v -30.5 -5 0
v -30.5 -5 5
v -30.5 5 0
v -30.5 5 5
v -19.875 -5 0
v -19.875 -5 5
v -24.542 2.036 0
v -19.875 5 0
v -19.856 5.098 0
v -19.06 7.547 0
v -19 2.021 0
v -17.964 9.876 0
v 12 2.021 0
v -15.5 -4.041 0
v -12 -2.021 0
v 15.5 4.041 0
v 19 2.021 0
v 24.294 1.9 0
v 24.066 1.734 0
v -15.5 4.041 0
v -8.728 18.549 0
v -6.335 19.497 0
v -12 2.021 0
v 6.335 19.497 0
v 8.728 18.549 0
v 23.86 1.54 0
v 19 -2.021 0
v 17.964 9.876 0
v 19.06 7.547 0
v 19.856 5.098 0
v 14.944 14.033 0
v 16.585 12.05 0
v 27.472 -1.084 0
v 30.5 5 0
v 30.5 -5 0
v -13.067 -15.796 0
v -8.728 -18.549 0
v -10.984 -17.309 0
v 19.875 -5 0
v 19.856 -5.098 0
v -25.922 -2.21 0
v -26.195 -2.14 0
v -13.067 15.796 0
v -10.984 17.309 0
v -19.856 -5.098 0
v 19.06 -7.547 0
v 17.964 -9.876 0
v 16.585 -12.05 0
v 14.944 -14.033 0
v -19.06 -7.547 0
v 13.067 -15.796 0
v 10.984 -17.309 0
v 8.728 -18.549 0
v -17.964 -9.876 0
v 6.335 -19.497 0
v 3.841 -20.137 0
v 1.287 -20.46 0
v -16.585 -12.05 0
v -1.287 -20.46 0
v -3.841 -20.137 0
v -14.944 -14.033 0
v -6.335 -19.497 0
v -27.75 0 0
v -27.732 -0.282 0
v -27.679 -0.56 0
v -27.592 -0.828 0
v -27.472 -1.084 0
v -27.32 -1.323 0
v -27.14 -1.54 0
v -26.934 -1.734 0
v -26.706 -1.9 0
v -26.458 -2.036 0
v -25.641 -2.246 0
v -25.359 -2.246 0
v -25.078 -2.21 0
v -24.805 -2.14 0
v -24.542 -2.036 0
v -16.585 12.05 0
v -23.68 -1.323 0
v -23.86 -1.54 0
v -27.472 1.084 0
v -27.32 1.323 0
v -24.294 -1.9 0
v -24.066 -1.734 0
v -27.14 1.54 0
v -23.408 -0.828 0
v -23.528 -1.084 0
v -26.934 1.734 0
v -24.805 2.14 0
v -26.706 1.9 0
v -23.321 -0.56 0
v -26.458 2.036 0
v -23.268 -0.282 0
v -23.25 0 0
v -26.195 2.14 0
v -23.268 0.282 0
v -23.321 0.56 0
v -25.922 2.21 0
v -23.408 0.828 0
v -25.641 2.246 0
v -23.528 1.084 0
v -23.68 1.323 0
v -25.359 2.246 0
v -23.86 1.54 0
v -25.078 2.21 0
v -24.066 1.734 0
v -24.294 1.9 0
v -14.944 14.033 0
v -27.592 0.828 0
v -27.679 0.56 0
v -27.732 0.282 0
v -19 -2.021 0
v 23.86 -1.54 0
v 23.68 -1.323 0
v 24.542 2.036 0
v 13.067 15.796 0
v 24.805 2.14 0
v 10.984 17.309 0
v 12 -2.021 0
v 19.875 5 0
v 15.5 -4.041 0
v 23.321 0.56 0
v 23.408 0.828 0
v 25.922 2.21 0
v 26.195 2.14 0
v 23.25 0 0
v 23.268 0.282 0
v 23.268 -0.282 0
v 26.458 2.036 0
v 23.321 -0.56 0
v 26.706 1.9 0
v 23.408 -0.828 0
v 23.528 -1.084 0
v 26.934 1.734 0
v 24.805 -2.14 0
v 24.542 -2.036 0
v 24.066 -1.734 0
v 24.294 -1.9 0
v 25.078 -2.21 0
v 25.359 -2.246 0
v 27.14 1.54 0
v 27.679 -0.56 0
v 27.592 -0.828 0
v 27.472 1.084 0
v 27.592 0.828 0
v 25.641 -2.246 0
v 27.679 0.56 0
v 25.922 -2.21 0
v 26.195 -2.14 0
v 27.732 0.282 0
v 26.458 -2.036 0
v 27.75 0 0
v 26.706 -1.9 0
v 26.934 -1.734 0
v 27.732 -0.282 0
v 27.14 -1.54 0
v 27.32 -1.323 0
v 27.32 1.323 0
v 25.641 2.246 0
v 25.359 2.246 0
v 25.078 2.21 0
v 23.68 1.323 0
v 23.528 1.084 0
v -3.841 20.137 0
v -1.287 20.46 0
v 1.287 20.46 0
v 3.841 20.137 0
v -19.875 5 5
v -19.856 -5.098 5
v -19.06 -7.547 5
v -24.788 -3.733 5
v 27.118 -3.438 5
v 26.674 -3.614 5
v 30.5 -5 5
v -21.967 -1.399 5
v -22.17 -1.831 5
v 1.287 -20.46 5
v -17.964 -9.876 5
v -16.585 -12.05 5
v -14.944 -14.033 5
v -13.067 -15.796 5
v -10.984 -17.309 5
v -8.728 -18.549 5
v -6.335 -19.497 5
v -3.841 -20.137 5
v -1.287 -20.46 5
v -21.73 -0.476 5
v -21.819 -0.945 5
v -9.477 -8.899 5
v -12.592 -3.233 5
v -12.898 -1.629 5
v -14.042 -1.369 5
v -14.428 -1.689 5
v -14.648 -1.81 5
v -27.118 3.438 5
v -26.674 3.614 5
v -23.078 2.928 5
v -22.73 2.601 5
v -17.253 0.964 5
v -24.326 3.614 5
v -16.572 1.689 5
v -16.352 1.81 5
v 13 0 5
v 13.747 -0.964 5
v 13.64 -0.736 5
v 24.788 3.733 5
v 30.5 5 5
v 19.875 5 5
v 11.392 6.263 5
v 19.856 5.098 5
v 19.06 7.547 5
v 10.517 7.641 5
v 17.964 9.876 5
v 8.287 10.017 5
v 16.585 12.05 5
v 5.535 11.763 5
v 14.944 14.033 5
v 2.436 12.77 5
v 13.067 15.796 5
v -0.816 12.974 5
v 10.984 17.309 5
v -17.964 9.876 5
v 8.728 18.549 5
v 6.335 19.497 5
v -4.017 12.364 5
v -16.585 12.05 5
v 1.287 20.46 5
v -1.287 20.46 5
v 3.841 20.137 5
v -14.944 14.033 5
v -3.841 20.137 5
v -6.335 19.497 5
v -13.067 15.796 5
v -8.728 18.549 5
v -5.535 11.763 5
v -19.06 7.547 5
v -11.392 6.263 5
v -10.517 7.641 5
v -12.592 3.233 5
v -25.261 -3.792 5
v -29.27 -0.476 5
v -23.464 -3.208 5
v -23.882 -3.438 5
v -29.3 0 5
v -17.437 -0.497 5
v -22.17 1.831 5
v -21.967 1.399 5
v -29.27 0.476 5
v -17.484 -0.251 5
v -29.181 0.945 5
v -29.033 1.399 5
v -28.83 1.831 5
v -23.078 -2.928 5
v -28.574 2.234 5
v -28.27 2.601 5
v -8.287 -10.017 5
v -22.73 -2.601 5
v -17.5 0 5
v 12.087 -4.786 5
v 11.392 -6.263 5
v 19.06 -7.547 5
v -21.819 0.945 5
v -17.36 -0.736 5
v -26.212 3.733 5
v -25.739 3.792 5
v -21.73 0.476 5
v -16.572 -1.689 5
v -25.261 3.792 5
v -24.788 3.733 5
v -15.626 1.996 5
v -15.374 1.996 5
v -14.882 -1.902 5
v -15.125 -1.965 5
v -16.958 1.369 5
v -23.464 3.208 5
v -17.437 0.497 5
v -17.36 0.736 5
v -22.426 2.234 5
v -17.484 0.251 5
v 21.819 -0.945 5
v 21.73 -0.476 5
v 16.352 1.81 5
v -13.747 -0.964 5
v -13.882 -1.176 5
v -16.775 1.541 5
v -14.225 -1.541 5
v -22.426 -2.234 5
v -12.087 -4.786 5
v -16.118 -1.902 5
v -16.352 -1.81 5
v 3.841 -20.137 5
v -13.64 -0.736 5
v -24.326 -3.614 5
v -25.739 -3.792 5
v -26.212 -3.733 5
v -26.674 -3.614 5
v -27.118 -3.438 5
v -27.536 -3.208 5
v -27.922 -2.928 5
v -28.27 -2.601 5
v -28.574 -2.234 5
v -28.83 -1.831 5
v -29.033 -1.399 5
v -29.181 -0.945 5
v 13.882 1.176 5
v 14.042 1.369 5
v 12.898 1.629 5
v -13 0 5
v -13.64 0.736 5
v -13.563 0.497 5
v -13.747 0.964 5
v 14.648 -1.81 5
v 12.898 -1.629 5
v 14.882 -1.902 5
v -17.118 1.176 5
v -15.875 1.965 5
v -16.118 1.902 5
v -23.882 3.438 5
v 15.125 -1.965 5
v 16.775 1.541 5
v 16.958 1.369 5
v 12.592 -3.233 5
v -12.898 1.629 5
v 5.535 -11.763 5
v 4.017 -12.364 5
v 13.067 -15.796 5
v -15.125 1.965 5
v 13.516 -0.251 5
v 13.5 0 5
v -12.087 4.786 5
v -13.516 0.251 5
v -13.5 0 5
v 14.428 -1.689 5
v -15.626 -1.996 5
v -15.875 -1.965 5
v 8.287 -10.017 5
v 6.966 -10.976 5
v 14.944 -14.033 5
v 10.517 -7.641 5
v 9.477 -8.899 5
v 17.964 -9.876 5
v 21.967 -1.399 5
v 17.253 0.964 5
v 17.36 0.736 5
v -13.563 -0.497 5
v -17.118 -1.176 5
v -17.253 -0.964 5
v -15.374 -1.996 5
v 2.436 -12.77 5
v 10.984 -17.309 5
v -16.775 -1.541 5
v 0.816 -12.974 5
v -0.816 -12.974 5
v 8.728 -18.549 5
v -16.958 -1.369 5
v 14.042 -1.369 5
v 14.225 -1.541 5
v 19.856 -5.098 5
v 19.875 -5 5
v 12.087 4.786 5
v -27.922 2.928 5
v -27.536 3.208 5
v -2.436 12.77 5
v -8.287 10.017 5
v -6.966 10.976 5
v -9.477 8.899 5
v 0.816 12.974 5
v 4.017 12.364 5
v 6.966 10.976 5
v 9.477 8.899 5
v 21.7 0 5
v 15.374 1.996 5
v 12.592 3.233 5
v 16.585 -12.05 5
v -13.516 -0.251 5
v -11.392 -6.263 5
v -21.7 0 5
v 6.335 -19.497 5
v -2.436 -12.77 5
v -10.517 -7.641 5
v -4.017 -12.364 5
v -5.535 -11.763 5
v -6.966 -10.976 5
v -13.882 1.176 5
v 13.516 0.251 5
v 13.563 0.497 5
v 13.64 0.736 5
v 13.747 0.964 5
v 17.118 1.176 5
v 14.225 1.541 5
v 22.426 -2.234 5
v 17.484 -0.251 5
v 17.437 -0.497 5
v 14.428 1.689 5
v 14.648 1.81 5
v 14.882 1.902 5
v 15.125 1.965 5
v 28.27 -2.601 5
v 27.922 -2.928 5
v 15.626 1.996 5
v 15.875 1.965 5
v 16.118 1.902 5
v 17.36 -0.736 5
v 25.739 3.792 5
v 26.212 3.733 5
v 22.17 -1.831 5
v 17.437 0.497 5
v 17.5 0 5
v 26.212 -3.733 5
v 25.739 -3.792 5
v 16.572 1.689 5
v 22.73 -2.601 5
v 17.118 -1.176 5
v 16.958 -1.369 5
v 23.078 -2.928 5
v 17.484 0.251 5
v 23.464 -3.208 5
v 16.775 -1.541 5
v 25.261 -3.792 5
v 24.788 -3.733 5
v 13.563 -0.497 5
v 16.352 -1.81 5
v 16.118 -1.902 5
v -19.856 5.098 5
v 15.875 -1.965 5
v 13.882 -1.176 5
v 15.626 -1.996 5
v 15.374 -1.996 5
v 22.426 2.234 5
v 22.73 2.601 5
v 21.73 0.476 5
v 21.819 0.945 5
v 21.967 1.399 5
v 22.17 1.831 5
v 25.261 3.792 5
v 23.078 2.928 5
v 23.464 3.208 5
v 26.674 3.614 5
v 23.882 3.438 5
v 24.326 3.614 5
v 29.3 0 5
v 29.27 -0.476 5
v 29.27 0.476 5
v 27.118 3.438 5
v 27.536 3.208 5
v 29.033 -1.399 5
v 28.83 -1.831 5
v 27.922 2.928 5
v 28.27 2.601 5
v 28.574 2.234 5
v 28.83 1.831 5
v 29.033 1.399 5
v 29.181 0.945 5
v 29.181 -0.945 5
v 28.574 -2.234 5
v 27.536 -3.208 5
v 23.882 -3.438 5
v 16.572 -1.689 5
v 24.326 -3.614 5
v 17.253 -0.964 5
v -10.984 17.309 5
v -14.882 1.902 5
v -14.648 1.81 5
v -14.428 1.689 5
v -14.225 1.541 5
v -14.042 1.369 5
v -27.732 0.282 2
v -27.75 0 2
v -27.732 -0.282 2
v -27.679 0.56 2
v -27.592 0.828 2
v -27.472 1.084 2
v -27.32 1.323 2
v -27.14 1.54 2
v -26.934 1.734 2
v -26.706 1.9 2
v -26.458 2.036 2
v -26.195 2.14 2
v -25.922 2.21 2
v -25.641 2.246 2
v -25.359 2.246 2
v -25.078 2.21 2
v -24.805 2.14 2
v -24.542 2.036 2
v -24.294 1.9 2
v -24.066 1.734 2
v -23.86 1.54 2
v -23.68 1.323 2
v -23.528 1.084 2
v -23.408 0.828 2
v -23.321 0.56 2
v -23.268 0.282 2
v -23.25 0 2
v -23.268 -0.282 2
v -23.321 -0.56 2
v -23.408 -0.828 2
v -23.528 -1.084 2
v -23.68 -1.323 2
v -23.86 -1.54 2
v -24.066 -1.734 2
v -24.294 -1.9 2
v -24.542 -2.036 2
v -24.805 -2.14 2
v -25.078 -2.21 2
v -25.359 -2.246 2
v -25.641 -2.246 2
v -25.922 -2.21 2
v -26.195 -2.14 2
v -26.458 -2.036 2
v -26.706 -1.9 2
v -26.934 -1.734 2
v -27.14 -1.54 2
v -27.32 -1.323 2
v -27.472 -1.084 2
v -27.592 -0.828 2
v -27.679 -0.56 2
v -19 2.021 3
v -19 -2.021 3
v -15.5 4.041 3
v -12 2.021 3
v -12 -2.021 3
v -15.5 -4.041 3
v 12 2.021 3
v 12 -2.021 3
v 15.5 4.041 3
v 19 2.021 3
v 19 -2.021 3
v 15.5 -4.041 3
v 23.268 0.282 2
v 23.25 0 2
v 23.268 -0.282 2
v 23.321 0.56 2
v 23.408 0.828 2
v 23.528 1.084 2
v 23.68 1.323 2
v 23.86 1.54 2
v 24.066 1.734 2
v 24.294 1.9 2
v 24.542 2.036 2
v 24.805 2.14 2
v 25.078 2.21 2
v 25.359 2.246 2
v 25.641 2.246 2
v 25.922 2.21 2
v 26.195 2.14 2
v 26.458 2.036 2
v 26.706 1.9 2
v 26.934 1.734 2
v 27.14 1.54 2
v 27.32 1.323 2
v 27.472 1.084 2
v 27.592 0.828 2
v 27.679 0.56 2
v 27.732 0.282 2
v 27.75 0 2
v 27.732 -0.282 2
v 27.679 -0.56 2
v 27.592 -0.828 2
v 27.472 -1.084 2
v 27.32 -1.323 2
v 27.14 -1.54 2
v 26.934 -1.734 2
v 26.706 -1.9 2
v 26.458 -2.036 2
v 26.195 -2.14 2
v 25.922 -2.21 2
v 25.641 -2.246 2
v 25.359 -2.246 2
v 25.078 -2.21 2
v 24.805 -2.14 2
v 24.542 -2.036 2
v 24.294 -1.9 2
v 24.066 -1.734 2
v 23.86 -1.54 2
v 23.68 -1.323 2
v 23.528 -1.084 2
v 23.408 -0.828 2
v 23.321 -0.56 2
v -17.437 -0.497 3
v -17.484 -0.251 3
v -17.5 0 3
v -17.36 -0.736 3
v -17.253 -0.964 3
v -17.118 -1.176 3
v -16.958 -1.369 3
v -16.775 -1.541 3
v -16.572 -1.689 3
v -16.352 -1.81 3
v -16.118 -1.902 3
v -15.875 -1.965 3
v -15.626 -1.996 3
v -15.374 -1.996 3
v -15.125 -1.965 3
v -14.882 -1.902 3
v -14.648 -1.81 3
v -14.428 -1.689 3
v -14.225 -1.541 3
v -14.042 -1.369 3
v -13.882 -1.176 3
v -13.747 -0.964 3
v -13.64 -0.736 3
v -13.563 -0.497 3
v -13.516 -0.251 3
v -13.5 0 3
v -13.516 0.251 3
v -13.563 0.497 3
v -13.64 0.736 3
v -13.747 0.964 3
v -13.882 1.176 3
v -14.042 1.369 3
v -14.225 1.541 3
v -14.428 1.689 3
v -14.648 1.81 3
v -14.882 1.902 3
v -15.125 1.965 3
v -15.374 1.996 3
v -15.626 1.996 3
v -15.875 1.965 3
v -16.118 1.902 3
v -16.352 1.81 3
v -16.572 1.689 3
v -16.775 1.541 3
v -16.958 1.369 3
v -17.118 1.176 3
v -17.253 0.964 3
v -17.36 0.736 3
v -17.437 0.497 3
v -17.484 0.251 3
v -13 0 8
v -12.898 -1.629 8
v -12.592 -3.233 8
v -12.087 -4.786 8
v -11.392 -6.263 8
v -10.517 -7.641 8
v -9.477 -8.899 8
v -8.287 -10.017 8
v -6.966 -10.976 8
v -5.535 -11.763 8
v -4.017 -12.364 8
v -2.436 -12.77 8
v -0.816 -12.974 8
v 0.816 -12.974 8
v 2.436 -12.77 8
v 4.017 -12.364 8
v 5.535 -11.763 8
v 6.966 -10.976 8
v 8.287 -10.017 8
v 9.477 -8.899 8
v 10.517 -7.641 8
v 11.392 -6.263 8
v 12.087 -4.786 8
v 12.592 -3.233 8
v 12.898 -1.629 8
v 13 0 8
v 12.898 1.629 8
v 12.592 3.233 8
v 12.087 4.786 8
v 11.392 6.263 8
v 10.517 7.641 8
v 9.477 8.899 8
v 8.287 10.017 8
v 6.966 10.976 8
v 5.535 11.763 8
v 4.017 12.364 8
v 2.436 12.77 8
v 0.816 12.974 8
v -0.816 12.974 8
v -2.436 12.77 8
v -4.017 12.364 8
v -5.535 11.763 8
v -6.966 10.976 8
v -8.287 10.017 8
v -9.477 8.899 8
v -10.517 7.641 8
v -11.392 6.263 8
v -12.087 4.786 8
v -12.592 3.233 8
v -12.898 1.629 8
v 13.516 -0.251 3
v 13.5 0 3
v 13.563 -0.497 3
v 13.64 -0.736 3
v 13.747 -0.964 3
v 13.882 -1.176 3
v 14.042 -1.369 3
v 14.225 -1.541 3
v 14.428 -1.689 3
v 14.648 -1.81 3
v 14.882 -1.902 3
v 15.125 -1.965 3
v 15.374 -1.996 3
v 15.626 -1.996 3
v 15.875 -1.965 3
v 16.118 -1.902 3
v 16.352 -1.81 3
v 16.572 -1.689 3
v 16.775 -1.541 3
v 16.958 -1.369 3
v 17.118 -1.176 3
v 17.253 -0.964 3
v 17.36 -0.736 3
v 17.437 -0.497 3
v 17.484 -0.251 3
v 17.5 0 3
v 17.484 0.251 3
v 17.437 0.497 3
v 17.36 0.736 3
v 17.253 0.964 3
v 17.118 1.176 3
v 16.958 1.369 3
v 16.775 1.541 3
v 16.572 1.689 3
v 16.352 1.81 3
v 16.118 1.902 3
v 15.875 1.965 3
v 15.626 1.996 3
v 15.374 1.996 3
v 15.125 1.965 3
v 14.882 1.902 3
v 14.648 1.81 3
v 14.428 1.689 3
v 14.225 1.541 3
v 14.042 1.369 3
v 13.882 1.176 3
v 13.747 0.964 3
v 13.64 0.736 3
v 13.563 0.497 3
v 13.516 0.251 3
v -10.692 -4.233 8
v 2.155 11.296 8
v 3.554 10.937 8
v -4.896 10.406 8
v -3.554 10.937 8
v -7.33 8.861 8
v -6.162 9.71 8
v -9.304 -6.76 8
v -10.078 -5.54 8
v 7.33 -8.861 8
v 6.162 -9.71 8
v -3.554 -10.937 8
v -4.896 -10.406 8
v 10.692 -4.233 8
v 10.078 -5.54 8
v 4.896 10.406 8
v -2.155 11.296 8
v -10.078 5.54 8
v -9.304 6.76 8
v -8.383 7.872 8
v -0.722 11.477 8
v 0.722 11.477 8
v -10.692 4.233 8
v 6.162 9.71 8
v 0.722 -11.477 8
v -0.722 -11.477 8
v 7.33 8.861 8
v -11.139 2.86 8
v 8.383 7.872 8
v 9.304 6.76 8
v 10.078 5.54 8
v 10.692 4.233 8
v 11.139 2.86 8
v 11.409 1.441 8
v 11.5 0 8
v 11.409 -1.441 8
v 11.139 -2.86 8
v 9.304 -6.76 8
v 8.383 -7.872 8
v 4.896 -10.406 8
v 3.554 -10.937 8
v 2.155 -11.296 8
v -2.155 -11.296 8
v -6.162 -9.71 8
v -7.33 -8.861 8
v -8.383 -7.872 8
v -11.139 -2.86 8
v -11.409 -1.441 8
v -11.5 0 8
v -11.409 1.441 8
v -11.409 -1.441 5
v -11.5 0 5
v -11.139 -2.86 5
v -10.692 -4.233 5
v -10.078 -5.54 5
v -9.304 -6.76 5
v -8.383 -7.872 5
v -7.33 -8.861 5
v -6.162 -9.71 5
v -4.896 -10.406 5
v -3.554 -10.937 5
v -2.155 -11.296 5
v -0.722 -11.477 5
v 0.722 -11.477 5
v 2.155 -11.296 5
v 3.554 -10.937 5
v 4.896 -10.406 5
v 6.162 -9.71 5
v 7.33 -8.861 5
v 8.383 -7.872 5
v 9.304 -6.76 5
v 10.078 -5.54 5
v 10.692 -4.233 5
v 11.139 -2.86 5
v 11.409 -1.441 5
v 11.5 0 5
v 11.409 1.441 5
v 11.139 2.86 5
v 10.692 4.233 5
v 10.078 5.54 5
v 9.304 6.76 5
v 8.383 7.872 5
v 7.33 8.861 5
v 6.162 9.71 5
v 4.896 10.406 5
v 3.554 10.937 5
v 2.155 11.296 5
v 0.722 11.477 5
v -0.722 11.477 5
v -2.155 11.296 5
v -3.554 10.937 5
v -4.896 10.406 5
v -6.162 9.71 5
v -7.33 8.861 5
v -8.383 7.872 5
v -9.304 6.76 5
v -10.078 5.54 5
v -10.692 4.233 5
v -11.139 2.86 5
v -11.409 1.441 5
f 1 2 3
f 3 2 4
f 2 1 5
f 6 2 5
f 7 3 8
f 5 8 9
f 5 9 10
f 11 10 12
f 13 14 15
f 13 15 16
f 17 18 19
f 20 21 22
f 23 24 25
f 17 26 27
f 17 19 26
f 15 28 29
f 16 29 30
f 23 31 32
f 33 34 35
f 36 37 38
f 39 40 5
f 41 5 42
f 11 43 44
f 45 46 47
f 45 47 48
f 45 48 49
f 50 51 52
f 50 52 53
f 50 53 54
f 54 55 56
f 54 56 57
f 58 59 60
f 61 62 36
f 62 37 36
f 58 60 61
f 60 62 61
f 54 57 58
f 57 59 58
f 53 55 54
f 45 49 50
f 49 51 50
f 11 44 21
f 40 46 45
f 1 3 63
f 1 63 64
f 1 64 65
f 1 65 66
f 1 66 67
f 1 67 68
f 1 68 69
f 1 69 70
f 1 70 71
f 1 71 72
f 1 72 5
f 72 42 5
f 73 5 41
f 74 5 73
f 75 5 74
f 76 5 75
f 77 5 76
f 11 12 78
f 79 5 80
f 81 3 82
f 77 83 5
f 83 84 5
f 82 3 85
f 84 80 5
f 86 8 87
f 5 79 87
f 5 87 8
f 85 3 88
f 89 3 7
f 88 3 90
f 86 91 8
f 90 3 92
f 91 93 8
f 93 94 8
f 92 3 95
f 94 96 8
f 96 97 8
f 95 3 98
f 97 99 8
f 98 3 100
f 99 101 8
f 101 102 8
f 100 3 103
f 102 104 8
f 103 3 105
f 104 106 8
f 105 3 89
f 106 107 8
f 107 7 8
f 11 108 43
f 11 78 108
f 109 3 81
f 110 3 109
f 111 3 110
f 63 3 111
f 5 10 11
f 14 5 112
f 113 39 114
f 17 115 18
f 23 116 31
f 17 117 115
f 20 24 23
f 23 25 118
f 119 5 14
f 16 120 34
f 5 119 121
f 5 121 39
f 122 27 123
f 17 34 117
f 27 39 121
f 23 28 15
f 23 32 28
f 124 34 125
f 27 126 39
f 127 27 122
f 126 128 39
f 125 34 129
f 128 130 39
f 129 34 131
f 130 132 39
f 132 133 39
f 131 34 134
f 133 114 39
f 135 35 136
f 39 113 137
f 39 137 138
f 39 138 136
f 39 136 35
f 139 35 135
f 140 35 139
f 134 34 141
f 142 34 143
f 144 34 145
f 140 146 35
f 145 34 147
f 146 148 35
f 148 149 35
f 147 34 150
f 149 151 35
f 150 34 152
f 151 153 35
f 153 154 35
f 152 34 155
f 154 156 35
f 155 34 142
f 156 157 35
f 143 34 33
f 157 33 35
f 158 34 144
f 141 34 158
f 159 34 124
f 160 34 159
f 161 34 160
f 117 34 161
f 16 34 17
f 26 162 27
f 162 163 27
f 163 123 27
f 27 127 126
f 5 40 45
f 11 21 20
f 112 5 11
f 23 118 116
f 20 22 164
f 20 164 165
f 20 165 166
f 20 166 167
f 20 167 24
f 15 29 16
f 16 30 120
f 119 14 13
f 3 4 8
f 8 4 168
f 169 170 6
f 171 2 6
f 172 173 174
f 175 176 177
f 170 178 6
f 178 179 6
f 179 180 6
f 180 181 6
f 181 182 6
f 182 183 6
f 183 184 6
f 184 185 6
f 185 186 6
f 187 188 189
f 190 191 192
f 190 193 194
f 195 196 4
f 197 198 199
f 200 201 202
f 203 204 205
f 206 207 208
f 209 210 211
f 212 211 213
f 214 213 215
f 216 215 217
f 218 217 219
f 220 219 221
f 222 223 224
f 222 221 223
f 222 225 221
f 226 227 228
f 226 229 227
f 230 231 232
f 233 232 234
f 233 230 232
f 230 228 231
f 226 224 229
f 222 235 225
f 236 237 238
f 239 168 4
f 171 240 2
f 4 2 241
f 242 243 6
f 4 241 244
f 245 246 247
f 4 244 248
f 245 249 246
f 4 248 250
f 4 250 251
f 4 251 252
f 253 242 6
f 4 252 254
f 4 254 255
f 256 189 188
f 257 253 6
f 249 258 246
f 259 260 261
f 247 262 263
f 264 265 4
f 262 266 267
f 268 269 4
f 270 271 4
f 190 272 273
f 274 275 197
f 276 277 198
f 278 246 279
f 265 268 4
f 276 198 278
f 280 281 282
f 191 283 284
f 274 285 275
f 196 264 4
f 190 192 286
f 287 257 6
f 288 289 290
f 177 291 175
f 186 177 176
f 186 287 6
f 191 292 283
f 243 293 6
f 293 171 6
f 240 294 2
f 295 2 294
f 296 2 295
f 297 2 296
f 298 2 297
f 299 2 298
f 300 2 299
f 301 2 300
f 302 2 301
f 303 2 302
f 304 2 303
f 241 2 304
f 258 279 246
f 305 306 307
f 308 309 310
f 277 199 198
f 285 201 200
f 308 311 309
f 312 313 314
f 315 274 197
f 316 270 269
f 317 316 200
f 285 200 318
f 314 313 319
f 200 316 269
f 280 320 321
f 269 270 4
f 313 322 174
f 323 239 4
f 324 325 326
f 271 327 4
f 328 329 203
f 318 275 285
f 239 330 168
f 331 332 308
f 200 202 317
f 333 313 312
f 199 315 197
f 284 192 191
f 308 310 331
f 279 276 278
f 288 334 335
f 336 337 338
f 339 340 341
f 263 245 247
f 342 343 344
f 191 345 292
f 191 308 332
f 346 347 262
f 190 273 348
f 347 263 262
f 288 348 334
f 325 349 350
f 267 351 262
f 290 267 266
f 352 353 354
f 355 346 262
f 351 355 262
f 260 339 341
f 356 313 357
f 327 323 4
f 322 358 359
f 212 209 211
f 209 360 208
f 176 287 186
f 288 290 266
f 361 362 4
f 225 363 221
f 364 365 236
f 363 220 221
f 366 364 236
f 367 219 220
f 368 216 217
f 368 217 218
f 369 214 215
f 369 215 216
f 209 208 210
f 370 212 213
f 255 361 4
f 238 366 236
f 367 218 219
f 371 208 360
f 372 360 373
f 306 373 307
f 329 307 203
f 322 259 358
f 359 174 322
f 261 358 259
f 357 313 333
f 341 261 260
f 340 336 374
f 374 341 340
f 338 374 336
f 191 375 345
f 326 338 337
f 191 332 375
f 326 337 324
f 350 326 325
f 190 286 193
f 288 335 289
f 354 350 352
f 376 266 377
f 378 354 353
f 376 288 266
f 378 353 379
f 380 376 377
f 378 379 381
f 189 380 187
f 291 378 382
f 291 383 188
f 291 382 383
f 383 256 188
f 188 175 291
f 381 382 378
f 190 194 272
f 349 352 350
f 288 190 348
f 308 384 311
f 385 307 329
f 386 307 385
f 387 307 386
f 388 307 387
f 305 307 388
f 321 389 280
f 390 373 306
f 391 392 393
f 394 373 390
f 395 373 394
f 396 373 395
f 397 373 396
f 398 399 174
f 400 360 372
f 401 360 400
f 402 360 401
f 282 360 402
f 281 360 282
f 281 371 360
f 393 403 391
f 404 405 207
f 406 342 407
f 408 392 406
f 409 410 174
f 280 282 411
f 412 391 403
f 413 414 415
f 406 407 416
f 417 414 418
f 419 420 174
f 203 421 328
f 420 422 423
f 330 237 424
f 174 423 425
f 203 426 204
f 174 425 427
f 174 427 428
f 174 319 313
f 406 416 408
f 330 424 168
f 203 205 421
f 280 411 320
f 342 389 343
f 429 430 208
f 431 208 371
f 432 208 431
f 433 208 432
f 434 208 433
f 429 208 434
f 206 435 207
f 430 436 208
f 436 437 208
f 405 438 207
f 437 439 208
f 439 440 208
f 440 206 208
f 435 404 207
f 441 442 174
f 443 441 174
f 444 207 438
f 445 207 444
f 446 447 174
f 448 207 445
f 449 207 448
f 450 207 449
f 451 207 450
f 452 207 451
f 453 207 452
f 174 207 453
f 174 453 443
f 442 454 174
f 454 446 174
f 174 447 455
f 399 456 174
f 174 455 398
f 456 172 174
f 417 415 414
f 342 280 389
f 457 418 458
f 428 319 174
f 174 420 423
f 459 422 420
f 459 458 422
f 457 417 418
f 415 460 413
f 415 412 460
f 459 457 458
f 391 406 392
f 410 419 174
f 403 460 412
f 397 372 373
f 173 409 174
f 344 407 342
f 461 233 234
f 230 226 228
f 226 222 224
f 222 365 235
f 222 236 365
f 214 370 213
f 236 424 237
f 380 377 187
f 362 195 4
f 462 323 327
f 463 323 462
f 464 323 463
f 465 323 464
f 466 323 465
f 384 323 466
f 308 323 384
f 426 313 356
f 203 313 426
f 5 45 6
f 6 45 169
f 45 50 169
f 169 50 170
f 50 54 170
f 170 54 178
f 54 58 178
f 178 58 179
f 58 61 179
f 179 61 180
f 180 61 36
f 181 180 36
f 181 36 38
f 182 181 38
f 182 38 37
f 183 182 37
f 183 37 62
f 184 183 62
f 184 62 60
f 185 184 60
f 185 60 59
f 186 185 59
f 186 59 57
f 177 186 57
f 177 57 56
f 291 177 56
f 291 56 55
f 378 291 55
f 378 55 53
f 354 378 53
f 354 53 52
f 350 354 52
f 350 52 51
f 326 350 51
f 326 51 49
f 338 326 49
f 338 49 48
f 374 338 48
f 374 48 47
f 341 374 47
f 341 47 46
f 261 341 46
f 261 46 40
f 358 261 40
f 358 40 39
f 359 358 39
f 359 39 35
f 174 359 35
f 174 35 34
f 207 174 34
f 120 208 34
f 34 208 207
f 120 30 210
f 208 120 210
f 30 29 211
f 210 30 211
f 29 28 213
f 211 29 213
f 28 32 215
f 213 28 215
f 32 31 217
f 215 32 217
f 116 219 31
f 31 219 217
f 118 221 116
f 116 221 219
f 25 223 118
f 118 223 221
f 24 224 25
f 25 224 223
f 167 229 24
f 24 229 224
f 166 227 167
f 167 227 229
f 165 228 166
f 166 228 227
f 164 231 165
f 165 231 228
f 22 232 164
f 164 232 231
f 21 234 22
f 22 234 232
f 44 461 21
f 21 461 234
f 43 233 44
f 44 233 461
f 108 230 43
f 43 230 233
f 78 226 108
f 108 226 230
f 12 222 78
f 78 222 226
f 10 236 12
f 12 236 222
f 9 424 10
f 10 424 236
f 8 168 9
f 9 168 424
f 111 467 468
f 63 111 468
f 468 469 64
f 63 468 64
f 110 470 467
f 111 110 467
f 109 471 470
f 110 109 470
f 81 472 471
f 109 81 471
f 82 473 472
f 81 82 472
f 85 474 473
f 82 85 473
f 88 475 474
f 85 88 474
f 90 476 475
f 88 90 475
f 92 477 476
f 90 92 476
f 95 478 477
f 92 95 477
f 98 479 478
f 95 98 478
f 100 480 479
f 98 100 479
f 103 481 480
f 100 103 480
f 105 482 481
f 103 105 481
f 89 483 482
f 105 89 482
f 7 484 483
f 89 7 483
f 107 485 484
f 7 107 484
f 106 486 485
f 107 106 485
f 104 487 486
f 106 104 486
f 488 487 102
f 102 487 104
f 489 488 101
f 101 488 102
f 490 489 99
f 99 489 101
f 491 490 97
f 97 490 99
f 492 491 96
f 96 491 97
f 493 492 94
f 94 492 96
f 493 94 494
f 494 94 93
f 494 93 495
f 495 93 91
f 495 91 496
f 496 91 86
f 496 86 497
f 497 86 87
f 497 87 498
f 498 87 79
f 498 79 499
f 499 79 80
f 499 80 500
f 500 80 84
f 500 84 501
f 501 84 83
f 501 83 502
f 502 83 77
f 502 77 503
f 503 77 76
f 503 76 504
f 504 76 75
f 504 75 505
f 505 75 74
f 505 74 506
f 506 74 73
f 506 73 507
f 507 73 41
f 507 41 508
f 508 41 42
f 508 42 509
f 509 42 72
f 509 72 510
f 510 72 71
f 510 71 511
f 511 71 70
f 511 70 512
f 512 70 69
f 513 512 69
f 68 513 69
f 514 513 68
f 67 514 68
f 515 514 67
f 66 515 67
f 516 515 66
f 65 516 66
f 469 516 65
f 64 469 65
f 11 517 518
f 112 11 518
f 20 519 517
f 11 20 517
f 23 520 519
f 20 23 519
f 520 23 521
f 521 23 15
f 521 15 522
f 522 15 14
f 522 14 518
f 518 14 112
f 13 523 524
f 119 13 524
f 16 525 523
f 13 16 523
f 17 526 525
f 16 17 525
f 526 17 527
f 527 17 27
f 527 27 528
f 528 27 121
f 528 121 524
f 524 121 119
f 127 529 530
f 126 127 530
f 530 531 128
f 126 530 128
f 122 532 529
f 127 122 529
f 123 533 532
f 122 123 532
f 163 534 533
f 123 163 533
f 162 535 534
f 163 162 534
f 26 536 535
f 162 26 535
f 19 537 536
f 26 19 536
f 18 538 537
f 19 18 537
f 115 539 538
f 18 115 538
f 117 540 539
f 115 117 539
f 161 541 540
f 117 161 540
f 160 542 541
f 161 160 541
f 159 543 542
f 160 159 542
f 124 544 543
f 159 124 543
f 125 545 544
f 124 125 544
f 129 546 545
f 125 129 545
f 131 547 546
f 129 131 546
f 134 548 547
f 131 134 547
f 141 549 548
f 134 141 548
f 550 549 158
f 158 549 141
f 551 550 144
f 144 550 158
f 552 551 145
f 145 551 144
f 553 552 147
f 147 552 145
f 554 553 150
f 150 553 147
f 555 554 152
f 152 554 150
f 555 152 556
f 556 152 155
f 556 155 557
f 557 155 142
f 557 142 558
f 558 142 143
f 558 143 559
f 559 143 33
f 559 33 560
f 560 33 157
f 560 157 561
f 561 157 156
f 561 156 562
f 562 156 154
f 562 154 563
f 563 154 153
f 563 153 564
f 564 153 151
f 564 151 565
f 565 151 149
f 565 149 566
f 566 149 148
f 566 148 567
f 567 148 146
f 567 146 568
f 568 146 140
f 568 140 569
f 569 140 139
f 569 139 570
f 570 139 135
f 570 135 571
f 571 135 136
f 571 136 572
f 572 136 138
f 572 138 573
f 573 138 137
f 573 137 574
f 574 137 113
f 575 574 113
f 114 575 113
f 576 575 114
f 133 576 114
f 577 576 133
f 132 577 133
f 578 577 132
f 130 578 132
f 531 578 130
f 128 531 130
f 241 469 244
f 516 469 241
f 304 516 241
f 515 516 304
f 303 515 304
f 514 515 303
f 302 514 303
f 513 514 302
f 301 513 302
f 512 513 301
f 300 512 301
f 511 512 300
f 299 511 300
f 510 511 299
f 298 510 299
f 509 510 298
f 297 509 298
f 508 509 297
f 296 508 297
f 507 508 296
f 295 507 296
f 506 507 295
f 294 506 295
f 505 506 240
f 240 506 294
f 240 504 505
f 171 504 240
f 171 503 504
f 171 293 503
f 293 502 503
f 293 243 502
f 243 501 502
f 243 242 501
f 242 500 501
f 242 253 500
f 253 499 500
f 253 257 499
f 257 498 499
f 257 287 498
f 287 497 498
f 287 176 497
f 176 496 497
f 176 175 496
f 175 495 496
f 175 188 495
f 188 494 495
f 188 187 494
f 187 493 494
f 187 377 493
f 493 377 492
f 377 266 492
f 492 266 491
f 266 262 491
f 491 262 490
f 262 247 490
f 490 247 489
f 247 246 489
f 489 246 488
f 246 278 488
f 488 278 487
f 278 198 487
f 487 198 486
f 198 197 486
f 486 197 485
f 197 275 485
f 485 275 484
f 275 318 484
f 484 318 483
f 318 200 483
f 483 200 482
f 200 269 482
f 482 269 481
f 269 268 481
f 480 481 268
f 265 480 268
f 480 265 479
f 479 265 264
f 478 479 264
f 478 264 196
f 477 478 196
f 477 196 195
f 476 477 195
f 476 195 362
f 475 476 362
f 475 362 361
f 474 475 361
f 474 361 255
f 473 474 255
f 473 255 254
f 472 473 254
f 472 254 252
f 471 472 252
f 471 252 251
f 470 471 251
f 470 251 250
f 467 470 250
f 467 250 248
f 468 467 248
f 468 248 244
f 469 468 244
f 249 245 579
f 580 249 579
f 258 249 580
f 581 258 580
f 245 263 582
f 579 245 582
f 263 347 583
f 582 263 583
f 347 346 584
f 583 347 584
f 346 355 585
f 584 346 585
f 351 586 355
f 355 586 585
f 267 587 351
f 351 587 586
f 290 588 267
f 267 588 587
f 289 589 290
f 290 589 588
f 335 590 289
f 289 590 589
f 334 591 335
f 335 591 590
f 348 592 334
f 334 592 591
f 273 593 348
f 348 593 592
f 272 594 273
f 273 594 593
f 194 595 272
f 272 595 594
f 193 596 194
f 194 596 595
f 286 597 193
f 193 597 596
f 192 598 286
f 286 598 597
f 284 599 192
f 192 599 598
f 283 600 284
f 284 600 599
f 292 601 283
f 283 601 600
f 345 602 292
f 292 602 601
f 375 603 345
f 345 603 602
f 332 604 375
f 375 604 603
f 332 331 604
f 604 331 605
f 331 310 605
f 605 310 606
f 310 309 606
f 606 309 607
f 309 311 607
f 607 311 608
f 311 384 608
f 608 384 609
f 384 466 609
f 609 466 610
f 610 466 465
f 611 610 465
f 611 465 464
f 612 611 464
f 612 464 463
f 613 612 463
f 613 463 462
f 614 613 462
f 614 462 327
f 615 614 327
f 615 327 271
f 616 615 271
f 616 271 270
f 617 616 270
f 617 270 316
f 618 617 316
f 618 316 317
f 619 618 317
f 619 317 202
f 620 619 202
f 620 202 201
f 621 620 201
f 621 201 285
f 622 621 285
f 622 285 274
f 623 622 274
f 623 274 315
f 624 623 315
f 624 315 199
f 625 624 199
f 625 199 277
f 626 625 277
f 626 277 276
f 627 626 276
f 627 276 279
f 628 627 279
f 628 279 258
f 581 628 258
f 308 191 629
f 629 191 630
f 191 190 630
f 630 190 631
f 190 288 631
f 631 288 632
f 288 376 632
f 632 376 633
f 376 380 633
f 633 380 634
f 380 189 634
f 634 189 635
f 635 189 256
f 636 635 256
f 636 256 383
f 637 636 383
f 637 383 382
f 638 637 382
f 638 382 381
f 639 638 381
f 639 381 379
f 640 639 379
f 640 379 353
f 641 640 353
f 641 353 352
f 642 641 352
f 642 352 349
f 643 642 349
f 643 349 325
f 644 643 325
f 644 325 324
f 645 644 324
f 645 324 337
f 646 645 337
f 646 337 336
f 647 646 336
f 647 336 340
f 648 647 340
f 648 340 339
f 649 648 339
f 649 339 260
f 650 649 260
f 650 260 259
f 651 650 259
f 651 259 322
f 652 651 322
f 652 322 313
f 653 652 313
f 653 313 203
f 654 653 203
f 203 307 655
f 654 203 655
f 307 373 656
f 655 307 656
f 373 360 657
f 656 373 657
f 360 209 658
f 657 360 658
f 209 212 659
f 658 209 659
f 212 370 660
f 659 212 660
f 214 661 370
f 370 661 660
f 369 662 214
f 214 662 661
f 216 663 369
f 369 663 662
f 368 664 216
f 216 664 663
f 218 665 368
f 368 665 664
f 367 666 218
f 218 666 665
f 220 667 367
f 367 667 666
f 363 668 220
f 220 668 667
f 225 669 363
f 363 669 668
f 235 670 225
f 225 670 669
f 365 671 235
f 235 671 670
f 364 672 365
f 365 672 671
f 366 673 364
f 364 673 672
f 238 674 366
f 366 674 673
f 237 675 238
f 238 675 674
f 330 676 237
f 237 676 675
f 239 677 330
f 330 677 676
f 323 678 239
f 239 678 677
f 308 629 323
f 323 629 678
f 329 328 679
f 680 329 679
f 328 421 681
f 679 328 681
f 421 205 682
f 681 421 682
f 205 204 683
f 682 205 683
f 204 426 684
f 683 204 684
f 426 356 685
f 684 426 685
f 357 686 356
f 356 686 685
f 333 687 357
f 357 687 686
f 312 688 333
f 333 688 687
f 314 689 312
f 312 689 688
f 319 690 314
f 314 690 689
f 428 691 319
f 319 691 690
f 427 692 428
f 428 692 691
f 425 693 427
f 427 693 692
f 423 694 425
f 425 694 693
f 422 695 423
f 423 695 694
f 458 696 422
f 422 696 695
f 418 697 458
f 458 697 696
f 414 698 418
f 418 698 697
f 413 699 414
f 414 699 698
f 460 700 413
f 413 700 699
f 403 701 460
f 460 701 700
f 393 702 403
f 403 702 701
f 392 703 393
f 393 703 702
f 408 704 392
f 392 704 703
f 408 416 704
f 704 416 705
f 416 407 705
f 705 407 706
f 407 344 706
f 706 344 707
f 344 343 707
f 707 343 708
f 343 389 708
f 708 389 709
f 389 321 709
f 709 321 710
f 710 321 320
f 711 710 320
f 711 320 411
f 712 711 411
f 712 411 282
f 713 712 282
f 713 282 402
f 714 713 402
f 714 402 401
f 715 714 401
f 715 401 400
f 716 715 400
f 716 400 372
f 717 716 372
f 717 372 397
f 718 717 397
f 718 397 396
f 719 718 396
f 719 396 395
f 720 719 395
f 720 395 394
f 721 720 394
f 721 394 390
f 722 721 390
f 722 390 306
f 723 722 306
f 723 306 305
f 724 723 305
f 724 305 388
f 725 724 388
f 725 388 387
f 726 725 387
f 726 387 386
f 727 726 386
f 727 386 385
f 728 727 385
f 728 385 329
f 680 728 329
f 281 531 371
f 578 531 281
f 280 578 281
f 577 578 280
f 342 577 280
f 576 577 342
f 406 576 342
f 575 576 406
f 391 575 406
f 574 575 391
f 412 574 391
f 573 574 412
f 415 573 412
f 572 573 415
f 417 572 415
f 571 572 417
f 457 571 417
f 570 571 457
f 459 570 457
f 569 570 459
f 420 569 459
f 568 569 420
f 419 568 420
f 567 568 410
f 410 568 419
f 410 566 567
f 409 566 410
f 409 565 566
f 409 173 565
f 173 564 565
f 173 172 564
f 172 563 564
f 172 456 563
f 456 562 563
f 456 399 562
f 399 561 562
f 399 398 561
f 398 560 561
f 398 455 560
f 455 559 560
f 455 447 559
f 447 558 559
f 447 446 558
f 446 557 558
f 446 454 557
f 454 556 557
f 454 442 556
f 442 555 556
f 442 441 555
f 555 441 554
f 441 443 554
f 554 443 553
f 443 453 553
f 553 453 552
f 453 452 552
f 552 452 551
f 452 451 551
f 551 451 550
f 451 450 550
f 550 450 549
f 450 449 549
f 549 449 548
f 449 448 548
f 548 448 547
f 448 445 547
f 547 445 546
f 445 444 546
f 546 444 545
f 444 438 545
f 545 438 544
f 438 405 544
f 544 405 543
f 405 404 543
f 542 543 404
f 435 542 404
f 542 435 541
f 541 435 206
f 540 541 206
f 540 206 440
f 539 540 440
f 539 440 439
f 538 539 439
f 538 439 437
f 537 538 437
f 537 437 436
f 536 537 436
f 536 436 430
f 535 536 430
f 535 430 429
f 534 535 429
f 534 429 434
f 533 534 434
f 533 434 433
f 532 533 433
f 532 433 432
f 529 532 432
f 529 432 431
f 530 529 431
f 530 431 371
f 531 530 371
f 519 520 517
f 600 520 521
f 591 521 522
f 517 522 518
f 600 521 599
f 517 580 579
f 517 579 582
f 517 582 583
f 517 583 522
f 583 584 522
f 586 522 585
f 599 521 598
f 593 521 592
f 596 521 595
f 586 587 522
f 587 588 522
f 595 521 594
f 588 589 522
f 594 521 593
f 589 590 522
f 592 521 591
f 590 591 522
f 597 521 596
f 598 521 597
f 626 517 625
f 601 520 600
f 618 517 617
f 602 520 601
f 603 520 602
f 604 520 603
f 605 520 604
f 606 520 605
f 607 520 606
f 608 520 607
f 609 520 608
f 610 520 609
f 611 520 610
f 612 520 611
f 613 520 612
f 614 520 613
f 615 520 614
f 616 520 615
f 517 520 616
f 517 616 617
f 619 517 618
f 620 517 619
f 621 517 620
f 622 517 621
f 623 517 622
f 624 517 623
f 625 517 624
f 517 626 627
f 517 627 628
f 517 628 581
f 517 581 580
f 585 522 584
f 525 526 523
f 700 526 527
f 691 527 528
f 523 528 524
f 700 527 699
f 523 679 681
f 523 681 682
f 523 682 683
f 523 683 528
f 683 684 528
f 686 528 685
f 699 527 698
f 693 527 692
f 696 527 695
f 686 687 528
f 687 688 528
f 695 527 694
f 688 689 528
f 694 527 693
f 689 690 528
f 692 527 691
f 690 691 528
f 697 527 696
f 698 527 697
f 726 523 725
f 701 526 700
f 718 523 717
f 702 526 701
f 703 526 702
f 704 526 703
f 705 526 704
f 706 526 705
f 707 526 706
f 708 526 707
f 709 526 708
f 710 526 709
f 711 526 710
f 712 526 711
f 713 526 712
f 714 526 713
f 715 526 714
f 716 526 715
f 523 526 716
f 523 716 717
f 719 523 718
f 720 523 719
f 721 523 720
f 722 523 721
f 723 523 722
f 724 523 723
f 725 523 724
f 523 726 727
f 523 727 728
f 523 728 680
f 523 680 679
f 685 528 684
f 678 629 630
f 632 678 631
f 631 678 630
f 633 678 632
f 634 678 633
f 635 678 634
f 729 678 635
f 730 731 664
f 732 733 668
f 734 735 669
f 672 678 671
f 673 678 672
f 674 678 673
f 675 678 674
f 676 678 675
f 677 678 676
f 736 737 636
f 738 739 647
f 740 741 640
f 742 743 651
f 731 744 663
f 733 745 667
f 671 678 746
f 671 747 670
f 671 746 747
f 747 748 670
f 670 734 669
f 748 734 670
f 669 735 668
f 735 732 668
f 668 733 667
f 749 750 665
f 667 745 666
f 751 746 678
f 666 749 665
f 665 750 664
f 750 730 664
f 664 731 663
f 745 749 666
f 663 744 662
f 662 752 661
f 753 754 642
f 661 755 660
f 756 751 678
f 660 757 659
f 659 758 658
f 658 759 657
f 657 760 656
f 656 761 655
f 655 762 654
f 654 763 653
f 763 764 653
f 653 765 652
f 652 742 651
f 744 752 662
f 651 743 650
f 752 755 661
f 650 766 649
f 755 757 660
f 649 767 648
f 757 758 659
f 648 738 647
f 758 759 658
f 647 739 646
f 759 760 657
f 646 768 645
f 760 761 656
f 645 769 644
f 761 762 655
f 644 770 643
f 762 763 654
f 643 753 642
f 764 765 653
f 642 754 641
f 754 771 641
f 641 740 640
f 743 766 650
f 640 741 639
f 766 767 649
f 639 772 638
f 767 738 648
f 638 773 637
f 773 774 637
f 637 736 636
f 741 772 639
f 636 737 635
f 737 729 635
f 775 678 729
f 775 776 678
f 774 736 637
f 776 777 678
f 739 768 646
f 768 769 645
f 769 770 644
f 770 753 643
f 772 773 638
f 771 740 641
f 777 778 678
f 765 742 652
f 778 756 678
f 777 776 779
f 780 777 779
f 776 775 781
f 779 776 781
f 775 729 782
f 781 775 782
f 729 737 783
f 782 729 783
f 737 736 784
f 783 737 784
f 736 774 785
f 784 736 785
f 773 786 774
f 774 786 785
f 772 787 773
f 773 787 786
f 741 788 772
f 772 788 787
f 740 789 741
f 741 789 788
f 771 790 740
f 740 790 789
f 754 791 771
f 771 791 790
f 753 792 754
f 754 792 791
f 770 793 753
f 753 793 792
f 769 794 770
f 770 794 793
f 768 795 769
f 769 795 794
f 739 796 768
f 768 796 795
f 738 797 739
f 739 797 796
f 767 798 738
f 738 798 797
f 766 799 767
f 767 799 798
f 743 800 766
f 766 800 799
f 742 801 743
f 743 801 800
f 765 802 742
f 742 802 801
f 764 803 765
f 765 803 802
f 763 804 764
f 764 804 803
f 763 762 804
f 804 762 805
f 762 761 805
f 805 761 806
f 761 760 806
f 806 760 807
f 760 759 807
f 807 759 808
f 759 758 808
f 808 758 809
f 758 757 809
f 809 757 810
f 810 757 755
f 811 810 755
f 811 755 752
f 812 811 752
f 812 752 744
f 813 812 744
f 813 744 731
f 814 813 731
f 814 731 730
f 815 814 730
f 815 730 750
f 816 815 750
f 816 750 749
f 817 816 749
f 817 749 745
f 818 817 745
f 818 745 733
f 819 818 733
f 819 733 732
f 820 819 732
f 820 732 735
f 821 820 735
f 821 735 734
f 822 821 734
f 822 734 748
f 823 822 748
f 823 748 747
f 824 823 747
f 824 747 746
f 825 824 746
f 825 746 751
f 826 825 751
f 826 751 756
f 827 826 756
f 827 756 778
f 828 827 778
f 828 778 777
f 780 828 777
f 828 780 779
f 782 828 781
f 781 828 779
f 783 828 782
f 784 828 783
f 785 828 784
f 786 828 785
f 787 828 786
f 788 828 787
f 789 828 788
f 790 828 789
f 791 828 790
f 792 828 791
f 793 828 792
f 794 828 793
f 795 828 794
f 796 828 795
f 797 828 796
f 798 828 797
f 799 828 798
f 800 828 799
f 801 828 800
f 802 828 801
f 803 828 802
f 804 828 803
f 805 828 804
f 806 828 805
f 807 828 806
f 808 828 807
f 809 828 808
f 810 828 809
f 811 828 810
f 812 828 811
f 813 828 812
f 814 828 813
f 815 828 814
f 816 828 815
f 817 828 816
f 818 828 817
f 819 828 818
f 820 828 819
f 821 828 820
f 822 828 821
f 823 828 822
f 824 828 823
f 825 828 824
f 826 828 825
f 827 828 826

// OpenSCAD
// file: stack_params.scad
stackInnerR = 26/2;
stackWallT = 3;

assemblyScrewR = 4/2;
assemblyScrewCenterR = stackInnerR+assemblyScrewR+0.5; // give ourselves clearance

stackOuterR = assemblyScrewCenterR+assemblyScrewR+stackWallT;



nutHeadWidth = 7;
nutHeadHeight = 3;

boltL = 20; // 20mm M4 bolts


flangeW = 10;
flangeH = 10;
flangeHoleR = 4.5/2;
flangeHoleHead = 7.6/2;
flangeHoleD = 3;

baseT = nutHeadHeight+2;

bodyH = boltL-baseT;

usbCableR = 3.75/2;



lensEndD = 15;
lensEndH = 3;
cameraEndD = 6;
cameraEndH = 2.5;

wallT = 2;

lensStackH = lensEndH+cameraEndH;
lensStackD = max(lensEndD, cameraEndD)+2*wallT;
// main file
include <stack_params.scad>;

couplingT = 3;



module nutslot(width, depth) {
  s3 = sqrt(3); // make life simpler below

  w2 = width/2;
  w2s3 = w2/s3;

  union() {
    linear_extrude(height=depth)
    polygon(points = [ [w2, w2s3], [0, width/s3], [-w2, w2s3], [-w2, -w2s3], [0, -width/s3], [w2, -w2s3] ]);
  }
}


$fn = 50;

difference() {
union() {
  /////////////////////////////////////////
  // Base cylinder
  cylinder(baseT, stackOuterR, stackOuterR, false);

  // Coupling cylinder
  difference() {
    cylinder(baseT+couplingT, stackInnerR, stackInnerR, false);
    cylinder(baseT+couplingT, stackInnerR-couplingT/2, stackInnerR-couplingT/2, false);
  }

  ////////////////////////////////////////
  // Right hand mounting flange
  difference() {
    translate([stackOuterR-3,-flangeH/2,0]) 
      cube([flangeW+3, flangeH, baseT], false);
    // screw hole
    translate([stackOuterR+flangeW/2, 0, 0]) 
      cylinder(baseT, flangeHoleR, flangeHoleR, false);		
    // countersink
    translate([stackOuterR+flangeW/2,0,baseT-flangeHoleD]) cylinder(flangeHoleD, flangeHoleR, flangeHoleHead, false);
  }


  ////////////////////////////////////////
  // Left hand mounting flange
  difference() {
    translate([-(stackOuterR+flangeW),-flangeH/2,0]) cube([flangeW+3, flangeH, baseT], false);
    // screw hole
    translate([-(stackOuterR+flangeW/2), 0, 0]) 
      cylinder(baseT, flangeHoleR, flangeHoleR, false);		
    // countersink
    translate([-(stackOuterR+flangeW/2),0,baseT-flangeHoleD]) cylinder(flangeHoleD, flangeHoleR, flangeHoleHead, false);
  }
}



  ////////////////////////////////////////
  // Assembly screw left

 translate([-assemblyScrewCenterR, 0, 0]) union() {
   cylinder(100, assemblyScrewR, assemblyScrewR, false);
   nutslot(nutHeadWidth, nutHeadHeight);
 }

 ////////////////////////////////////////
 // Assembly screw right
 translate([assemblyScrewCenterR, 0, 0]) cylinder(100, assemblyScrewR, assemblyScrewR, false);
 translate([assemblyScrewCenterR, 0, 0])
   nutslot(nutHeadWidth, nutHeadHeight);


}
